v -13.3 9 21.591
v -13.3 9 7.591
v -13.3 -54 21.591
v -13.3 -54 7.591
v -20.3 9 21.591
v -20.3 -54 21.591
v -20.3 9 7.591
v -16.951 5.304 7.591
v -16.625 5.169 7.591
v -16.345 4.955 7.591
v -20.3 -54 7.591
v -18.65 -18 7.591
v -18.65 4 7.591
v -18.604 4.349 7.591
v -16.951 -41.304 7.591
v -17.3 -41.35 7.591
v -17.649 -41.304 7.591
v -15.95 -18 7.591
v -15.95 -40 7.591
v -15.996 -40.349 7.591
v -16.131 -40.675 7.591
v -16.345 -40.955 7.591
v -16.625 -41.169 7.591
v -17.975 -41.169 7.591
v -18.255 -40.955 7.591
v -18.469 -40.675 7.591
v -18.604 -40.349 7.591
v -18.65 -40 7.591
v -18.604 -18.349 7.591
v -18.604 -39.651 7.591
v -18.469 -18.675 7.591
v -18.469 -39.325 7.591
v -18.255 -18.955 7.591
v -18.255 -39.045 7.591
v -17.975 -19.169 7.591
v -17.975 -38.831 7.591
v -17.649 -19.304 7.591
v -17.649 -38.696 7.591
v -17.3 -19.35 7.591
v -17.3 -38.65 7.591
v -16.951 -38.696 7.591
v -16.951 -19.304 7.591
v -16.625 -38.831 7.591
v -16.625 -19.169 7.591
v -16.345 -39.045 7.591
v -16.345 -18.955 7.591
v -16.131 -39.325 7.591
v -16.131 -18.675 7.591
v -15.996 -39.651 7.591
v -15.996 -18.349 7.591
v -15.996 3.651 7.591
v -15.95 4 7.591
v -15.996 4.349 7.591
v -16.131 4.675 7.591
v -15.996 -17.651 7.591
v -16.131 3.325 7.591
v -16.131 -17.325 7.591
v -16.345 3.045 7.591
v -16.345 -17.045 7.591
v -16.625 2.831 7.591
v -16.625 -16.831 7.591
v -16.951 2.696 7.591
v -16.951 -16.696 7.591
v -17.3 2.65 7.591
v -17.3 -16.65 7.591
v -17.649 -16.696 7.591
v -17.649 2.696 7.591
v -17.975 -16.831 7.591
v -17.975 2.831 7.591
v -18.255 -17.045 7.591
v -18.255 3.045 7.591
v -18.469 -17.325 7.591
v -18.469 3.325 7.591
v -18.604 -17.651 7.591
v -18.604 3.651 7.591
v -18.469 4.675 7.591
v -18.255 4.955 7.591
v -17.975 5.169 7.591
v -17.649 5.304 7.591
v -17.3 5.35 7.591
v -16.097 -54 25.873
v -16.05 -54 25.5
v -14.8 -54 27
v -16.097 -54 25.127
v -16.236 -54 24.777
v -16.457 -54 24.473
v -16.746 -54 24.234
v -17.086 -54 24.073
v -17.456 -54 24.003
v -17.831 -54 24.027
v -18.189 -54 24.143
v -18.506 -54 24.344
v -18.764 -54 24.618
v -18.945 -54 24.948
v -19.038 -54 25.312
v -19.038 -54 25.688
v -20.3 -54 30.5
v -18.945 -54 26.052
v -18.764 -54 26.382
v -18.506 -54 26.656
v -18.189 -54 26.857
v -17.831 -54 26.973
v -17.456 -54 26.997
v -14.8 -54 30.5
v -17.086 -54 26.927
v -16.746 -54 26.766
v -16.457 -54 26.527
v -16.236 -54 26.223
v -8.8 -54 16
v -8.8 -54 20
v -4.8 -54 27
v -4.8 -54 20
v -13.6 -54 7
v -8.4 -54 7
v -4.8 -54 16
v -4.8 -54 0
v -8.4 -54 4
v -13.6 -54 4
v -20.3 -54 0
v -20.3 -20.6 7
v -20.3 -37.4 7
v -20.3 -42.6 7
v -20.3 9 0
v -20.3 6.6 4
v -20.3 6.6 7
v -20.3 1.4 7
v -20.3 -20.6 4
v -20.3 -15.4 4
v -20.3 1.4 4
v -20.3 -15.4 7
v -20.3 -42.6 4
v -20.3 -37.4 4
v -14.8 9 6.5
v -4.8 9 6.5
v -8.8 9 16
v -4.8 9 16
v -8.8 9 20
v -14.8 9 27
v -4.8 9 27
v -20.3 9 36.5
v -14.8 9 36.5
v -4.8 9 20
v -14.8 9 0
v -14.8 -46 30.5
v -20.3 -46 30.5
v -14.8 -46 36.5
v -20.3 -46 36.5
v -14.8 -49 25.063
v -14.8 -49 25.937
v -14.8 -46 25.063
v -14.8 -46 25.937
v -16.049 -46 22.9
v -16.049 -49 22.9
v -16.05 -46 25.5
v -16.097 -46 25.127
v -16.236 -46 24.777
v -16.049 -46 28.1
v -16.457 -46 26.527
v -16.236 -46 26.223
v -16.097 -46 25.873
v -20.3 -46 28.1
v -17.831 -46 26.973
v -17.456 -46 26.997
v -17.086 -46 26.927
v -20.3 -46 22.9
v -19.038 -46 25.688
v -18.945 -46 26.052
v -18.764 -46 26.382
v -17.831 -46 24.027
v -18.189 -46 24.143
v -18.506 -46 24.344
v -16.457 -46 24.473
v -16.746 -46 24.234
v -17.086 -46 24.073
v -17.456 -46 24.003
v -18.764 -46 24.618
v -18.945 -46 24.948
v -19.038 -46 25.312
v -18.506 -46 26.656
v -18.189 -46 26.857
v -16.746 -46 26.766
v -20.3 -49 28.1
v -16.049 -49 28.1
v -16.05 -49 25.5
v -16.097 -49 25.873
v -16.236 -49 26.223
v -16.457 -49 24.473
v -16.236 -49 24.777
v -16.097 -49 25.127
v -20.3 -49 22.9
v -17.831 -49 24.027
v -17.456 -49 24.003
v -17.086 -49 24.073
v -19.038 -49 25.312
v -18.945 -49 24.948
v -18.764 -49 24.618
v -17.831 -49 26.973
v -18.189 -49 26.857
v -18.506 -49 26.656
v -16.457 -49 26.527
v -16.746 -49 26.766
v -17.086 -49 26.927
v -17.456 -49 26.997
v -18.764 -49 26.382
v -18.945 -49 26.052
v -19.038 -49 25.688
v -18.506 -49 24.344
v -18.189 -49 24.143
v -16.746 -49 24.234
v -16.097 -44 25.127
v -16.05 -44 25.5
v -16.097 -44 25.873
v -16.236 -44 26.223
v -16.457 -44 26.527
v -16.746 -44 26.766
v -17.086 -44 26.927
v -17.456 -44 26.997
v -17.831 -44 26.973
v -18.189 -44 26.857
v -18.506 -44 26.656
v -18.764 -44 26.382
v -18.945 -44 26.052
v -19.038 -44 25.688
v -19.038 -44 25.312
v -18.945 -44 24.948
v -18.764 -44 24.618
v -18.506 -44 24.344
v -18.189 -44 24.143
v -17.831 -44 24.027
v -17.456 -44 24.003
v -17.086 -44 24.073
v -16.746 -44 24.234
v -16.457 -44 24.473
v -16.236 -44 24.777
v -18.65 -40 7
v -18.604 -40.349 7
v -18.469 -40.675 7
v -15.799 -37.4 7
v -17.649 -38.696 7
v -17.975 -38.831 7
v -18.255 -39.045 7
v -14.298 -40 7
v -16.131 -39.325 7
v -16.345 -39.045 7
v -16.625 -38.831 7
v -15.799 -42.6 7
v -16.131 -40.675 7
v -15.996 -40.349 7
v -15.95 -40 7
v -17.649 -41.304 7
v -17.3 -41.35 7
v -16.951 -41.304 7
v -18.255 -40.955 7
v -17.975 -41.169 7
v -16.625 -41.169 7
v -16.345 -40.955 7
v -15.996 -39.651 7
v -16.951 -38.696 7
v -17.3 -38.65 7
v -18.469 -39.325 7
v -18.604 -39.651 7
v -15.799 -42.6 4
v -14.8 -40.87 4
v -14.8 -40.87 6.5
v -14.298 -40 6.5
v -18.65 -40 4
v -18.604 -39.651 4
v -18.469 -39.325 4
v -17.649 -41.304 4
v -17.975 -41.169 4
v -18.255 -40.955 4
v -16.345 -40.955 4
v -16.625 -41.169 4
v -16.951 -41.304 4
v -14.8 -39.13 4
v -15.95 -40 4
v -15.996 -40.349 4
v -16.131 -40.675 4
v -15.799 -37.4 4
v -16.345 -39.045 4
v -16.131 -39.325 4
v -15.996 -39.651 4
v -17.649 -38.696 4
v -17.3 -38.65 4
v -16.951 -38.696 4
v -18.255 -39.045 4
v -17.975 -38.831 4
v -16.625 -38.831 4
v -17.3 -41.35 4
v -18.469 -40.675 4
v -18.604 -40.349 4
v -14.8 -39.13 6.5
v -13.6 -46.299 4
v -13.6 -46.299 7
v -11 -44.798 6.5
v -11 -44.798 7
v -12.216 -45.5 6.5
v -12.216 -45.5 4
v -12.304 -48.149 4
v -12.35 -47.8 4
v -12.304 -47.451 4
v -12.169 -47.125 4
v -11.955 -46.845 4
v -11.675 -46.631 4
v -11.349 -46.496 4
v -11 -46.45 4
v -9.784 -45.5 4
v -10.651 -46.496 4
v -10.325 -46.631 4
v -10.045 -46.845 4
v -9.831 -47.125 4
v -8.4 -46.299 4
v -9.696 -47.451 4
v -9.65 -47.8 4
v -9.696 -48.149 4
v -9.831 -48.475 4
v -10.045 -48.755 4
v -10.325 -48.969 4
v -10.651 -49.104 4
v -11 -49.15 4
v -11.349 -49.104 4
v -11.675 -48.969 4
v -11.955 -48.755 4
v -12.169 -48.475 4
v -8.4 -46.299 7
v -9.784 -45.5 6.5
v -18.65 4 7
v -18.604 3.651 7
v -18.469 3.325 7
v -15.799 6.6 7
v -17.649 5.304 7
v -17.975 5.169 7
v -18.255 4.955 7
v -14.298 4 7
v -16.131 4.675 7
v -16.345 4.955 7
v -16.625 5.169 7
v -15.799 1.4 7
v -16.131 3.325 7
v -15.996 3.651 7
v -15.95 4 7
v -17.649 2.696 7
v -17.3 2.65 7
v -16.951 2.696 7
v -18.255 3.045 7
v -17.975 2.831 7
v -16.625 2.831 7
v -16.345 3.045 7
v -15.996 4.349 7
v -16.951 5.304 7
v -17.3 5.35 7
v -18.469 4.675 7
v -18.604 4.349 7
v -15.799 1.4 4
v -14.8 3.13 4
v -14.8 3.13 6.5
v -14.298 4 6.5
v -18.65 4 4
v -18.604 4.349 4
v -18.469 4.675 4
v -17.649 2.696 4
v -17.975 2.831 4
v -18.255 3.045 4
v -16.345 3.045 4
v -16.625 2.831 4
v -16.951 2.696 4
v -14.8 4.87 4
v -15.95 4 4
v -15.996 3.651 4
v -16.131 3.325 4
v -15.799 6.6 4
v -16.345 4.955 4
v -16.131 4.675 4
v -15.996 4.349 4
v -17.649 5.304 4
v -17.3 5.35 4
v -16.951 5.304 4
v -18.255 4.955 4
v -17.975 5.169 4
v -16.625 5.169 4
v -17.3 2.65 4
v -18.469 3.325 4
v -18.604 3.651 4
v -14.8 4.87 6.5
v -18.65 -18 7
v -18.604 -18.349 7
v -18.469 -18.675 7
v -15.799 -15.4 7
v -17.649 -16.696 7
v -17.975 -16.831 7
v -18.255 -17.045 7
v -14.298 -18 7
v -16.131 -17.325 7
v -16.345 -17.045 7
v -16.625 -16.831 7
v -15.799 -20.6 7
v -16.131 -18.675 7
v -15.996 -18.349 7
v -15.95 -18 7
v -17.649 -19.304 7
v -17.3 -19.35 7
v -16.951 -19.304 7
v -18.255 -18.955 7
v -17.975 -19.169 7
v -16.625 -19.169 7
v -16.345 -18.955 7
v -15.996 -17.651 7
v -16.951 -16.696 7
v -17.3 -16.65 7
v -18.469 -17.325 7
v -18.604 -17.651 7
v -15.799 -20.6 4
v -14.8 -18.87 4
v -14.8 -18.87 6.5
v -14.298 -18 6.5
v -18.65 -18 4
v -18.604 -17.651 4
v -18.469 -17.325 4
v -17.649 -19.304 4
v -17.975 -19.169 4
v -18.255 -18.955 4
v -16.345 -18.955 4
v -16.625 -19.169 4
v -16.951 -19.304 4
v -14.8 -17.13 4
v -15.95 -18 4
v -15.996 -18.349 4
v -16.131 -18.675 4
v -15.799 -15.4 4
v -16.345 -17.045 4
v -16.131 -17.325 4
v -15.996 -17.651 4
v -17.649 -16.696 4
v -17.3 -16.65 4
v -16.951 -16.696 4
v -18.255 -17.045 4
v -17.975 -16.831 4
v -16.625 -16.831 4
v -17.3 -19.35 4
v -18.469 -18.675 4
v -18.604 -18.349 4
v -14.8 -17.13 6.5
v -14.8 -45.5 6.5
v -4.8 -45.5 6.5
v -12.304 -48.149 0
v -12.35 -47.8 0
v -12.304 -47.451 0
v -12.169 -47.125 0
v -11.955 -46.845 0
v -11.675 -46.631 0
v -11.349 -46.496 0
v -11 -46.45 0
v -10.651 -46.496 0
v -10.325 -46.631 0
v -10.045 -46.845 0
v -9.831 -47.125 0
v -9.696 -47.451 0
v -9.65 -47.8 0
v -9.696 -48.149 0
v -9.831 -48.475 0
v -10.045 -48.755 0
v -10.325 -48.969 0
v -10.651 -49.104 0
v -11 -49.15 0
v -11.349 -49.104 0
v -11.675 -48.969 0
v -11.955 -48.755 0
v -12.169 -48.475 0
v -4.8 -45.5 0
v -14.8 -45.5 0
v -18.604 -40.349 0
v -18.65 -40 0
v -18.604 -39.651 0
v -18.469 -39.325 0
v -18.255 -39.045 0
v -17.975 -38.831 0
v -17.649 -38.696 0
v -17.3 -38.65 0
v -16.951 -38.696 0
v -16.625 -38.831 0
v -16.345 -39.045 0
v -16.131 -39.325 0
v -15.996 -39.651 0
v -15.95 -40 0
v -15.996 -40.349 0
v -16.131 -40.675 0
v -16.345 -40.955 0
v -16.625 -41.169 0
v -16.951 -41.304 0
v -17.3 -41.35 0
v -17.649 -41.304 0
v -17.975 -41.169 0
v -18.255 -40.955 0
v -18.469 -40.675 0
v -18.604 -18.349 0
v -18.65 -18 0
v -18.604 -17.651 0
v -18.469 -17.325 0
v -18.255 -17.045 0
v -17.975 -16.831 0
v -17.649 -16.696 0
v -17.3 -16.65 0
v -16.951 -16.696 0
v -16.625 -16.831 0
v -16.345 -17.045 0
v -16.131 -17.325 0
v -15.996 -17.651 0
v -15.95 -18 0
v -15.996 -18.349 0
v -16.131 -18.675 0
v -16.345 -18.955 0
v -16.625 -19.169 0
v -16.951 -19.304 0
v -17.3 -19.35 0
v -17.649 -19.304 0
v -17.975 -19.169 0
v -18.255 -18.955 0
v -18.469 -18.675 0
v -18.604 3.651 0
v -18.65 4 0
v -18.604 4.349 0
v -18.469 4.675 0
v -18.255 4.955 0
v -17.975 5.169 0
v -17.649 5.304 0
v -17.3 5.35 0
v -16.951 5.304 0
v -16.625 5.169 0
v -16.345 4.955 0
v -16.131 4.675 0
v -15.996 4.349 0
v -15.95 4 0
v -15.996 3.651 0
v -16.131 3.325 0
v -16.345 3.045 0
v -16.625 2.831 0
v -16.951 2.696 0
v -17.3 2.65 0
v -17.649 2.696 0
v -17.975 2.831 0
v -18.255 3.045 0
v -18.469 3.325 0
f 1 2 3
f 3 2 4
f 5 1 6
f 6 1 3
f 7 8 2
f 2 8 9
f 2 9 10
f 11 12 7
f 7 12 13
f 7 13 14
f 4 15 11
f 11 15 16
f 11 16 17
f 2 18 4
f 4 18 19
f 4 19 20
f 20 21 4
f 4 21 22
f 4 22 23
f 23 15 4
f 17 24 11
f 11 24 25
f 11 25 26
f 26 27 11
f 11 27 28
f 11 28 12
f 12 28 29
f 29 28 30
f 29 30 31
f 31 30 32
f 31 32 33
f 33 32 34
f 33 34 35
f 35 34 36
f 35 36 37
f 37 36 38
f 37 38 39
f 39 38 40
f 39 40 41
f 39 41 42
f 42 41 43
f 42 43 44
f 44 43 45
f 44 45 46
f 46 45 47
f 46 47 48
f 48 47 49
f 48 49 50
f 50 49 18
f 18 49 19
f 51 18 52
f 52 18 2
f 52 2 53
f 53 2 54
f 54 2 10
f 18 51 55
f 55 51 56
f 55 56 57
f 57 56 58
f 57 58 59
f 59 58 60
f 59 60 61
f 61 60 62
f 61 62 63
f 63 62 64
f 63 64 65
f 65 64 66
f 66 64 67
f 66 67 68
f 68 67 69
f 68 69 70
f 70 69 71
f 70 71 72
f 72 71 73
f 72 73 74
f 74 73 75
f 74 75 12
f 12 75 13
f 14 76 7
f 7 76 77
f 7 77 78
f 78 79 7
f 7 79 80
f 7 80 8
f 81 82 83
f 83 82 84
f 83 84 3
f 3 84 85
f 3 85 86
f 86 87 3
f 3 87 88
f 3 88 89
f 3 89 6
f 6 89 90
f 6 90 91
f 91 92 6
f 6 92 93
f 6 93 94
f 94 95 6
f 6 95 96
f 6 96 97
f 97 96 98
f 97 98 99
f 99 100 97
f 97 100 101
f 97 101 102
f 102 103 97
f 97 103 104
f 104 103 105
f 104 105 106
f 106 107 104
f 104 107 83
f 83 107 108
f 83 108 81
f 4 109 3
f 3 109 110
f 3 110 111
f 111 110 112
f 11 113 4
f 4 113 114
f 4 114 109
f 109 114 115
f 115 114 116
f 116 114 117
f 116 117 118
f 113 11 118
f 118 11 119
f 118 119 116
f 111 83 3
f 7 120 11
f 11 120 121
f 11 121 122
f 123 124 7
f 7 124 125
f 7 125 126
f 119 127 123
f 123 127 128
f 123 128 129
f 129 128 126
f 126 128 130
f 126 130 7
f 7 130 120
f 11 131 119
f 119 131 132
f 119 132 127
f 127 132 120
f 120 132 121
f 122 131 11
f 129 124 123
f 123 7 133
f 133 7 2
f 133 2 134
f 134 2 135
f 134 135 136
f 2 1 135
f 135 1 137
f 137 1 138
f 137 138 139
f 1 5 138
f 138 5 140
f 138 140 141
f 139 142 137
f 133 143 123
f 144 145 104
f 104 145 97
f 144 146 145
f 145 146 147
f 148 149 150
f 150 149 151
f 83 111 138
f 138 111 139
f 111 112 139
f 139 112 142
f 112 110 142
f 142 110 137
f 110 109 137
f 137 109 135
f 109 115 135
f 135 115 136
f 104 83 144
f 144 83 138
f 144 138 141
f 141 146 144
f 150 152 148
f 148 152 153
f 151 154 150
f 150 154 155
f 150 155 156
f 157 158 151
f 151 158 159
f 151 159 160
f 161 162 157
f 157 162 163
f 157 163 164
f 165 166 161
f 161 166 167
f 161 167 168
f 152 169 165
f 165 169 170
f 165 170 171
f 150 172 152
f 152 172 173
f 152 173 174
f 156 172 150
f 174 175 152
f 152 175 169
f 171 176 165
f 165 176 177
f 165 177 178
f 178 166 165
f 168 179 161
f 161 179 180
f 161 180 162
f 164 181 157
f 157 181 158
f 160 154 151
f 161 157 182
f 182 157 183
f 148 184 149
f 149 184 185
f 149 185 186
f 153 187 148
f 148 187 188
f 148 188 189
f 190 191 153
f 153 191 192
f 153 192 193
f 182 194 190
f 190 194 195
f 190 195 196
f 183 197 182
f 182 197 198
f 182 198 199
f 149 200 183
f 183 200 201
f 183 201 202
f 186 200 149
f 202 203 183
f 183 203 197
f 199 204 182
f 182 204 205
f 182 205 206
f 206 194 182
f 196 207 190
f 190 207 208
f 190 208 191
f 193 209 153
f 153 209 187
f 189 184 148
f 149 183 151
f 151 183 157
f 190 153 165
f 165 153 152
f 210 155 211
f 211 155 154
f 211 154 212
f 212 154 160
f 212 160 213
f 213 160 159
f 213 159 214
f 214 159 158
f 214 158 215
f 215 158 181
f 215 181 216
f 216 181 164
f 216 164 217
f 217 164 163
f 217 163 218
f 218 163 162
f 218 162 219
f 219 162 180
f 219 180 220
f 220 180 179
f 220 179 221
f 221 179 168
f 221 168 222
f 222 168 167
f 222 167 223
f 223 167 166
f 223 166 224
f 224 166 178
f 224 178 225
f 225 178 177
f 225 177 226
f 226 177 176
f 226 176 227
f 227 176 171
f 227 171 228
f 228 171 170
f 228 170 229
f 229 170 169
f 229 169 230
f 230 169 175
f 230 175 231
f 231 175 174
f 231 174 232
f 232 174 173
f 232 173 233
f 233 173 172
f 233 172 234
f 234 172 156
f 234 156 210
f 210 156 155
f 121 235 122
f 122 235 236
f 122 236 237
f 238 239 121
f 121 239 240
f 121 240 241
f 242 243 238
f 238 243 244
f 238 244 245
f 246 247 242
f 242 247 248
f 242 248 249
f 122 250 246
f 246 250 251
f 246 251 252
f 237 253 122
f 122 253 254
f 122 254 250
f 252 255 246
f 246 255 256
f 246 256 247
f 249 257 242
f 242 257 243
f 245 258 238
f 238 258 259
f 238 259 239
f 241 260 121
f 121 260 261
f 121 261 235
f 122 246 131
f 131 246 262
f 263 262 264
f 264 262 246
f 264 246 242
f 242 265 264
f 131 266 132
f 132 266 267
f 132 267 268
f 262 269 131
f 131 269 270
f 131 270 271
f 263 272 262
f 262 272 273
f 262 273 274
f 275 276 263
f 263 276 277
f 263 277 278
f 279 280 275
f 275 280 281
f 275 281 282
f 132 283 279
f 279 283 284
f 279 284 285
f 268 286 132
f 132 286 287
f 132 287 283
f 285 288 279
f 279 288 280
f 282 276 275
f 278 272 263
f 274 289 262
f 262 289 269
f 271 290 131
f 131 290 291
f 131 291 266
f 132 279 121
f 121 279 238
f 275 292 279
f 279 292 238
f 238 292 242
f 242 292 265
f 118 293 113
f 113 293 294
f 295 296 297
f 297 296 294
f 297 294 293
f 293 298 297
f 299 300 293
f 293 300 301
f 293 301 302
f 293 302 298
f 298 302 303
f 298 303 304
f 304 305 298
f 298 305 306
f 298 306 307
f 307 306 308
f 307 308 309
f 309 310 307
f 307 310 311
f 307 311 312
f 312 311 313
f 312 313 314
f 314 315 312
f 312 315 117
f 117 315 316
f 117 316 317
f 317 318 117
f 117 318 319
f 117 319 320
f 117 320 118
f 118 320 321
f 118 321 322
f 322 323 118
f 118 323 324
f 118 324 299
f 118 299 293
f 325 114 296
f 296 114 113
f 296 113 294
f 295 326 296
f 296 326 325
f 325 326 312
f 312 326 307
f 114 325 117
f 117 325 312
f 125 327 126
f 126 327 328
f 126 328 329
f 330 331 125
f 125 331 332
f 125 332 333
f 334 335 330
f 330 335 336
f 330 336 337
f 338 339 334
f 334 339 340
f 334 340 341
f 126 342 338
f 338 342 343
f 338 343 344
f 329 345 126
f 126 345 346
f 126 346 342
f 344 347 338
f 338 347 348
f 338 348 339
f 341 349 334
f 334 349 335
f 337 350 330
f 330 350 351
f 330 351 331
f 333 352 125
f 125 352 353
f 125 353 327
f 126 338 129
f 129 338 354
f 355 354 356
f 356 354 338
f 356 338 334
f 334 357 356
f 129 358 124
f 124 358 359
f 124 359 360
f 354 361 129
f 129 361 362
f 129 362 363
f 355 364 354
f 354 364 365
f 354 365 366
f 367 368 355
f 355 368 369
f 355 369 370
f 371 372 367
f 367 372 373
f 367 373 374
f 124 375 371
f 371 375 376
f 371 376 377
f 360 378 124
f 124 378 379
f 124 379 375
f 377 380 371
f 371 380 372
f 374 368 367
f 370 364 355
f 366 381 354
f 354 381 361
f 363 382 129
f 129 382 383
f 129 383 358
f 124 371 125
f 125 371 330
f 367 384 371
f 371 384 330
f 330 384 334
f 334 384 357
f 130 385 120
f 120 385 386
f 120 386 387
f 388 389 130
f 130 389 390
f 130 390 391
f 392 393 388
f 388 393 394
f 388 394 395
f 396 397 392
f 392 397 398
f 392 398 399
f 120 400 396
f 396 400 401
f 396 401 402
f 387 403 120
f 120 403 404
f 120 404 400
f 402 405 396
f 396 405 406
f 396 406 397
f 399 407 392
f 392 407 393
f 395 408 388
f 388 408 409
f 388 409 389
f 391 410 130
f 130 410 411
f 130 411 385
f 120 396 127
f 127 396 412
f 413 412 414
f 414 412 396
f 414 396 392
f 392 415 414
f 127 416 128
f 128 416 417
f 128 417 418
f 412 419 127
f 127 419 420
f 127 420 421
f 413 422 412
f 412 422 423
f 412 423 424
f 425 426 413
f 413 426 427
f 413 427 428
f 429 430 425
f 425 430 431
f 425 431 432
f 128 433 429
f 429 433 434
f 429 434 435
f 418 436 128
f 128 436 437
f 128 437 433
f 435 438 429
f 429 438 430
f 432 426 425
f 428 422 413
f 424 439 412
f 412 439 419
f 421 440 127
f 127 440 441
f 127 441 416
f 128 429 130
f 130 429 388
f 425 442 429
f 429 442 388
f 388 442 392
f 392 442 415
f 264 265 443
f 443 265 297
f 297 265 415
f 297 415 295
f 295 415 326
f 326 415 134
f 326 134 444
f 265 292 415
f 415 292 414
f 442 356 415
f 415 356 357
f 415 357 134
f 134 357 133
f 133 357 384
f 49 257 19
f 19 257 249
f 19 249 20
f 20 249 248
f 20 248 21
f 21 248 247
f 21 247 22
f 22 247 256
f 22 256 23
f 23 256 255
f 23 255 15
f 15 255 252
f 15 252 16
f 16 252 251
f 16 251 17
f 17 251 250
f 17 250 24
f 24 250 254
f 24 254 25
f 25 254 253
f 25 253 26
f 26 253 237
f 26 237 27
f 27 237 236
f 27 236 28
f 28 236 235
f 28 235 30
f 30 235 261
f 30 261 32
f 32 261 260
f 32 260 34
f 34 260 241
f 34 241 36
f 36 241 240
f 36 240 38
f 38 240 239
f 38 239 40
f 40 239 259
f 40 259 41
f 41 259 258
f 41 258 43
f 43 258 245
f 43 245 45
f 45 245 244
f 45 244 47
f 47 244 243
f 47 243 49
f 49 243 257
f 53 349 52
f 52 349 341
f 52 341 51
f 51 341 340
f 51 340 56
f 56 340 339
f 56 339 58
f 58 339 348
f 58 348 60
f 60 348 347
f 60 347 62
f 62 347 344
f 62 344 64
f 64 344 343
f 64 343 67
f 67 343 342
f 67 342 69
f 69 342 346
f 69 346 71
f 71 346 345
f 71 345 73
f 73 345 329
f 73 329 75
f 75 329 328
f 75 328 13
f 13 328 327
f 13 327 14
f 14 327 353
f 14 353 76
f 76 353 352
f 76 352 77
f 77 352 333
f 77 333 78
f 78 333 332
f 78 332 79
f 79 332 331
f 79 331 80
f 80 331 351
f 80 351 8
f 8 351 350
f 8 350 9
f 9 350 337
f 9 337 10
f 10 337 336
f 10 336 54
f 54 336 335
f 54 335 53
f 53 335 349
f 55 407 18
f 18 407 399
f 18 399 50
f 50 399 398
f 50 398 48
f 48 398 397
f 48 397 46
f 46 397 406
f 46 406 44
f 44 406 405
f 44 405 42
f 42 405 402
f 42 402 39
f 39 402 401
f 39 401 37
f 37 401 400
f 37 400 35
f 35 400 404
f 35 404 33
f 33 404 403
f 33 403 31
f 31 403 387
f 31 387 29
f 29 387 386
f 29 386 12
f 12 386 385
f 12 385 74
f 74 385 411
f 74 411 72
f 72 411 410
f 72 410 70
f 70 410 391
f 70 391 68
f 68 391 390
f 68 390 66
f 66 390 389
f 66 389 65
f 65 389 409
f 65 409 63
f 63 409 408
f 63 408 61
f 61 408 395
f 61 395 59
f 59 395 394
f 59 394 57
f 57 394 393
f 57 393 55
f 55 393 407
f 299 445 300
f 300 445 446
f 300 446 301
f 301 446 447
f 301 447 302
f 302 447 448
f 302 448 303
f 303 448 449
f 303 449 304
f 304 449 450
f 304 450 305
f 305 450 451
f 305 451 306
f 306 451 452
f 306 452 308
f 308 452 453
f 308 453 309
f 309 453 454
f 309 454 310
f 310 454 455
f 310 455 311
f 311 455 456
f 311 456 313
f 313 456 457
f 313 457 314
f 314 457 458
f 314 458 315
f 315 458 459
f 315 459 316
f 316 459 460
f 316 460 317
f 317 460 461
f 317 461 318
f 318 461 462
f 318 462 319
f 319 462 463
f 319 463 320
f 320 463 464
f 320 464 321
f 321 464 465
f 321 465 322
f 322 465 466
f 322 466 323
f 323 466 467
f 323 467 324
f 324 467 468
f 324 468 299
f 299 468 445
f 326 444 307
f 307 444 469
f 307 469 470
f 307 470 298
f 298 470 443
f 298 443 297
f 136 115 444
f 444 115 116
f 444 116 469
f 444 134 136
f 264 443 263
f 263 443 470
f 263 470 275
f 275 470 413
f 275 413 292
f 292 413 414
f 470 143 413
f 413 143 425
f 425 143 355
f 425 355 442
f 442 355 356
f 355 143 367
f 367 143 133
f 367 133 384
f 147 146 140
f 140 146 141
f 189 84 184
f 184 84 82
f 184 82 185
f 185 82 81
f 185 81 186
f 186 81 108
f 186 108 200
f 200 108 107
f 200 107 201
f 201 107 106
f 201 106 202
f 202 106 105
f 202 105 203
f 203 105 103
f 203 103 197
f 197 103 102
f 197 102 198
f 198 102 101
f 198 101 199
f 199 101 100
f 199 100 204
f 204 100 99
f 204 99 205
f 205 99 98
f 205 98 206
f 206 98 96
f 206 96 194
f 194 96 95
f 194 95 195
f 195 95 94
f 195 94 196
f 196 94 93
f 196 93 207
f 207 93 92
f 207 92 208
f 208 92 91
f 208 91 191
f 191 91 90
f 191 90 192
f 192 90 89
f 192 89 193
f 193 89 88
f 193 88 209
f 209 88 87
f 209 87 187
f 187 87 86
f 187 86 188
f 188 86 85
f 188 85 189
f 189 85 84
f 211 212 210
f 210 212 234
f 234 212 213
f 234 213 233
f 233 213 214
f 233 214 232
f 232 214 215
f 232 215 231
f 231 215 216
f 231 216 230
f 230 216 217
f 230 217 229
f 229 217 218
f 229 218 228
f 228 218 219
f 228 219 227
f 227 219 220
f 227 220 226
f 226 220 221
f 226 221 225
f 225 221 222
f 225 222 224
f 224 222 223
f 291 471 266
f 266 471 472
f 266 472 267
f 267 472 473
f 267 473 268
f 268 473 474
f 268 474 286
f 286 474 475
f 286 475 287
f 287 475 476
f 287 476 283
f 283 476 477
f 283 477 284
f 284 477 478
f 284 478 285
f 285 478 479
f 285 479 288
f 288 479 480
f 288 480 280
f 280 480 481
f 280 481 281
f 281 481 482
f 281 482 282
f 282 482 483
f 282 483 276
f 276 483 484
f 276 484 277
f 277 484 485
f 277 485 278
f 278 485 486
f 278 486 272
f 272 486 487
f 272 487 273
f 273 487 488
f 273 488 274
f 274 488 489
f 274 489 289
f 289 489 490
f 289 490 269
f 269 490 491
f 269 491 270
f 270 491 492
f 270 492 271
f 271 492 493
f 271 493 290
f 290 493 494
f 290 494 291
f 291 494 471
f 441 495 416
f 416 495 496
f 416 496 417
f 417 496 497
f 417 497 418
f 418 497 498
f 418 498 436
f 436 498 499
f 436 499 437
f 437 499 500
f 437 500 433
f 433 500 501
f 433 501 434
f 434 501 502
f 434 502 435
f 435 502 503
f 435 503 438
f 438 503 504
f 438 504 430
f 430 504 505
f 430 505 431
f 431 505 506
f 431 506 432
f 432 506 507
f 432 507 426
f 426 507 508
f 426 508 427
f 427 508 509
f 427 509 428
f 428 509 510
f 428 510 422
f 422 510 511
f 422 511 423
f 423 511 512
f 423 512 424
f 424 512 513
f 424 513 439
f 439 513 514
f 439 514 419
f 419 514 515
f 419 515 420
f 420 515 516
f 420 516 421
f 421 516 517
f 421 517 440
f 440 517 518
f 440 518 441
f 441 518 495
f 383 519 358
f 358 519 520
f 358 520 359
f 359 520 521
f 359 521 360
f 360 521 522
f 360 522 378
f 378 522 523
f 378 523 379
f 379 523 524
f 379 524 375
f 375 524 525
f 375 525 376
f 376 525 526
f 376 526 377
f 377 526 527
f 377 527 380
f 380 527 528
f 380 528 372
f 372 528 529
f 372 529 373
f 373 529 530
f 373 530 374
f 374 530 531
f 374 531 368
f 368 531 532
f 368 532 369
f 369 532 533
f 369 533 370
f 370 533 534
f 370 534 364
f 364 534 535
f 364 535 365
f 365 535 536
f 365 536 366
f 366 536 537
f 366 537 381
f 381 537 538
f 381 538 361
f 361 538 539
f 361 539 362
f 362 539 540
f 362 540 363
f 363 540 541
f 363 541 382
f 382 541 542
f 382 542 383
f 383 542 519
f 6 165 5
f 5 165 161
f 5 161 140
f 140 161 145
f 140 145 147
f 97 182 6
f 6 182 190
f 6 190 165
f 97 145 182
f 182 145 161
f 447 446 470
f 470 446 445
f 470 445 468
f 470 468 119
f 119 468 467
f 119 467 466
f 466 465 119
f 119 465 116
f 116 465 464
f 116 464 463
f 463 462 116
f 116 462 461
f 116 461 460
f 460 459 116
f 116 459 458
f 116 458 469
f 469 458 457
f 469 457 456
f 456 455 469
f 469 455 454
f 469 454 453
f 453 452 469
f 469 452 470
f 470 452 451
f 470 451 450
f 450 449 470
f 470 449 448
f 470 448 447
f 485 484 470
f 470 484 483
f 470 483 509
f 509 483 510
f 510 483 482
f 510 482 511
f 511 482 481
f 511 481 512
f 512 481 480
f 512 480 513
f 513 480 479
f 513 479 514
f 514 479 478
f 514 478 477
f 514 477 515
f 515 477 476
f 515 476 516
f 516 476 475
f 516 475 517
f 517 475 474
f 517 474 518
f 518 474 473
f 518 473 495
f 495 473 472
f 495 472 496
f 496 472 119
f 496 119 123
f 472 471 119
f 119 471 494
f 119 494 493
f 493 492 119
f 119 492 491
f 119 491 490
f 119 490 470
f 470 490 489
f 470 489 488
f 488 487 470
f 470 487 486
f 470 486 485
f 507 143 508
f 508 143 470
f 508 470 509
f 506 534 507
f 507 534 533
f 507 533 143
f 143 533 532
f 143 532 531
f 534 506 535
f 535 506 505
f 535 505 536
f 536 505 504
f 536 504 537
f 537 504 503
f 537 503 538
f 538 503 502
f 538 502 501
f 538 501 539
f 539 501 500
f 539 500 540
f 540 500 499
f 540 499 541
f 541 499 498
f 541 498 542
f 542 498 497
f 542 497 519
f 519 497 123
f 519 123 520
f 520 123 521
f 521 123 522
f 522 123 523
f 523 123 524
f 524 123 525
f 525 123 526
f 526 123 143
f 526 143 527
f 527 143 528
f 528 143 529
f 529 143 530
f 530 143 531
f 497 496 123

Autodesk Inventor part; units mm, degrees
ref_plane "Work Plane1" through (0, 0, 0) normal (0, 0, 1) x (1, 0, 0)
sketch "Sketch1" plane through (0, 0, 0) normal (0, 0, 1) x (1, 0, 0)
  circle A0 centre (-17.3, 4) radius 1.35 projected
  circle A1 centre (-17.3, -18) radius 1.35 projected
  circle A2 centre (-17.3, -40) radius 1.35 projected
  line L0 (-17.3, 4) -> (-14.8, 4)
  line L1 (-14.8, 4) -> (-14.8, 9)
  line L2 (-14.8, 9) -> (-20.3, 9)
  line L3 (-17.3, -40) -> (-17.3, -54)
  line L4 (-14.8, 4) -> (-14.8, -54)
  line L5 (-14.8, -54) -> (-17.3, -54)
  line L6 (-17.3, -54) -> (-20.3, -54)
  line L7 (-20.3, -54) -> (-20.3, 9)
  point P0 (0, 0)
  dimension "d0" = 2.5
  dimension "d1" = 5
  dimension "d2" = 5.5
  dimension "d3" = 14
extrude "Extrusion1" add sketch "Sketch1" along normal blind 36.5
sketch "Sketch2" plane through (-20.3, -54, 0) normal (0, -1, 0) x (1, 0, 0)
  line L0 (0, 0) -> (5.5, 0) projected
  line L1 (5.5, 0) -> (5.5, 36.5) projected
  line L2 (0, 36.5) -> (5.5, 36.5) projected
  line L3 (0, 0) -> (0, 36.5) projected
  line L4 (2.75, 36.5) -> (2.75, 25.5)
  circle A0 centre (2.75, 25.5) radius 1.5
  point P0 (20.3, 0)
  dimension "d6" = 11
  dimension "d7" = 3
extrude "Extrusion2" cut sketch "Sketch2" against normal blind 10 contours A0
sketch "Sketch3" plane through (-20.3, -54, 0) normal (-1, 0, 0) x (0, 0, 1)
  line L0 (0, 63) -> (0, 0) projected
  line L1 (0, 0) -> (36.5, 0) projected
  line L2 (36.5, 63) -> (36.5, 0) projected
  line L3 (0, 63) -> (36.5, 63) projected
  line L4 (0, 0) -> (36.5, 0) projected
  line L5 (36.5, 0) -> (28.5, 0)
  line L6 (28.5, 0) -> (28.5, 8)
  line L7 (28.5, 8) -> (36.5, 8)
  line L8 (36.5, 8) -> (36.5, 0)
  point P0 (0, 54)
  dimension "d10" = 8
  dimension "d11" = 8
extrude "Extrusion3" cut sketch "Sketch3" against normal blind 10 contours L6 L7 L2 L1
sketch "Sketch4" plane through (-20.3, 9, 0) normal (0, 1, 0) x (1, 0, 0)
  line L0 (5.5, 0) -> (0, 0) projected
  line L1 (0, 0) -> (0, -36.5) projected
  line L2 (5.5, -36.5) -> (0, -36.5) projected
  line L3 (5.5, 0) -> (5.5, -36.5) projected
  line L4 (6.8, -6) -> (8.8, -6) projected
  line L5 (6.8, -6) -> (5.5, -6)
  line L6 (5.5, -6) -> (5.5, -6.5)
  line L7 (5.5, 0) -> (5.5, -28.5) projected
  line L8 (5.5, -6.5) -> (15.5, -6.5)
  line L9 (15.5, -6.5) -> (15.5, -11.5)
  line L10 (15.5, -11.5) -> (5.5, -11.5)
  line L11 (5.5, -11.5) -> (5.5, -6.5)
  point P0 (20.3, 0)
  dimension "d14" = 0.5
  dimension "d15" = 10
  dimension "d16" = 5
extrude "Extrusion4" add sketch "Sketch4" against normal up to surface (63 mm away) contours L8 L9 L10 L3
sketch "Sketch5" plane through (-4.8, 9, 6.5) normal (0, 0, -1) x (-1, 0, 0)
  circle A0 centre (12.5, -49) radius 1.35 projected
  circle A1 centre (12.5, -27) radius 1.35 projected
  circle A2 centre (12.5, -5) radius 1.35 projected
  line L0 (10, -63) -> (10, 0) projected
  line L1 (15.5, -63) -> (10, -63) projected
  line L2 (15.5, 0) -> (15.5, -63) projected
  line L3 (10, 0) -> (15.5, 0) projected
  line L4 (0, -63) -> (10, -63) projected
  line L5 (10, 0) -> (10, -63) projected
  line L6 (0, 0) -> (10, 0) projected
  line L7 (0, 0) -> (0, -63) projected
  line L8 (-19.8, 5.5) -> (-16.3, 5.5) projected
  line L9 (-19.8, 5.5) -> (-24.9, -0.5) projected
  line L10 (-24.9, -0.5) -> (-24.9, -53.6) projected
  line L11 (-24.9, -53.6) -> (-19.8, -59.6) projected
  line L12 (-19.8, -59.6) -> (10.2, -59.6) projected
  line L13 (10.2, -59.6) -> (15.3, -53.6) projected
  line L14 (15.3, -53.6) -> (15.3, -0.5) projected
  line L15 (15.3, -0.5) -> (10.2, 5.5) projected
  line L16 (6.7, 5.5) -> (10.2, 5.5) projected
  arc A3 (9.7, 2.5) -> (6.7, 5.5) centre (6.7, 2.5) ccw projected
  line L17 (9.7, -51) -> (9.7, 2.5) projected
  arc A4 (6.7, -54) -> (9.7, -51) centre (6.7, -51) ccw projected
  line L18 (-16.3, -54) -> (6.7, -54) projected
  arc A5 (-19.3, -51) -> (-16.3, -54) centre (-16.3, -51) ccw projected
  line L19 (-19.3, 2.5) -> (-19.3, -51) projected
  arc A6 (-16.3, 5.5) -> (-19.3, 2.5) centre (-16.3, 2.5) ccw projected
  circle A7 centre (12.5, -5) radius 1.35 projected
  circle A8 centre (12.5, -27) radius 1.35 projected
  circle A9 centre (12.5, -49) radius 1.35 projected
  circle A10 centre (6.2, -56.8) radius 1.35 projected
  circle A11 centre (-22.1, -5) radius 1.35 projected
  circle A12 centre (-22.1, -27) radius 1.35 projected
  circle A13 centre (-22.1, -49) radius 1.35 projected
  circle A14 centre (-15.8, -56.8) radius 1.35 projected
  line L20 (10, 0) -> (10, -63) projected
  line L21 (10, -63) -> (0, -63)
  line L22 (0, -63) -> (0, -54.5)
  line L23 (0, -54.5) -> (10, -54.5)
  line L24 (10, -54.5) -> (10, -63)
  point P0 (-4.8, -9)
  dimension "d19" = 10
  dimension "d20" = 8.5
extrude "Extrusion5" add sketch "Sketch5" along normal up to surface (6.5 mm away) contours L0 L12 L7 L23 | L0 L4 L7 L12
ref_plane "Work Plane2" through (0, 0, 4) normal (0, 0, -1) x (-1, 0, 0)
sketch "Sketch6" plane through (0, 0, 4) normal (0, 0, -1) x (-1, 0, 0)
  circle A0 centre (17.3, 4) radius 1.35 projected
  circle A1 centre (17.3, -18) radius 1.35 projected
  circle A2 centre (11, -47.8) radius 1.35 projected
  circle A3 centre (17.3, -40) radius 1.35 projected
  circle A4 centre (17.3, -18) radius 1.35 projected
  circle A5 centre (17.3, 4) radius 1.35 projected
  line L0 (20.3, -54) -> (4.8, -54) projected
  line L1 (20.3, 9) -> (20.3, -54) projected
  line L2 (14.8, 9) -> (20.3, 9) projected
  line L3 (14.8, -45.5) -> (14.8, 9) projected
  line L4 (14.8, -45.5) -> (4.8, -45.5) projected
  line L5 (4.8, -45.5) -> (4.8, -54) projected
  circle A6 centre (11, -47.8) radius 1.35 projected
  circle A7 centre (11, -47.8) radius 1.35 projected
  line L6 (17.3, 4) -> (17.3, 6.6)
  line L7 (18.8011, 6.6) -> (20.3022, 4)
  line L8 (20.3022, 4) -> (18.8011, 1.4)
  line L9 (18.8011, 1.4) -> (15.7989, 1.4)
  line L10 (15.7989, 1.4) -> (14.2978, 4)
  line L11 (14.2978, 4) -> (15.7989, 6.6)
  line L12 (15.7989, 6.6) -> (18.8011, 6.6)
  line L13 (18.8011, 1.4) -> (28.5961, 1.4)
  line L14 (28.5961, 1.4) -> (28.5961, 6.6)
  line L15 (28.5961, 6.6) -> (18.8011, 6.6)
  line L16 (18.8011, 6.6) -> (18.8011, 1.4)
  line L17 (11, -47.8) -> (13.6, -47.8)
  line L18 (13.6, -49.3011) -> (11, -50.8022)
  line L19 (11, -50.8022) -> (8.4, -49.3011)
  line L20 (8.4, -49.3011) -> (8.4, -46.2989)
  line L21 (8.4, -46.2989) -> (11, -44.7978)
  line L22 (11, -44.7978) -> (13.6, -46.2989)
  line L23 (13.6, -46.2989) -> (13.6, -49.3011)
  line L24 (13.6, -49.3011) -> (8.4, -49.3011)
  line L25 (8.4, -49.3011) -> (8.4, -56.2377)
  line L26 (8.4, -56.2377) -> (13.6, -56.2377)
  line L27 (13.6, -56.2377) -> (13.6, -49.3011)
  line L28 (18.8011, -15.4) -> (20.3022, -18)
  line L29 (20.3022, -18) -> (18.8011, -20.6)
  line L30 (18.8011, -20.6) -> (28.5961, -20.6)
  line L31 (28.5961, -20.6) -> (28.5961, -15.4)
  line L32 (28.5961, -15.4) -> (18.8011, -15.4)
  line L33 (18.8011, -15.4) -> (18.8011, -20.6)
  line L34 (17.3, -18) -> (17.3, -15.4)
  line L35 (18.8011, -20.6) -> (15.7989, -20.6)
  line L36 (15.7989, -15.4) -> (18.8011, -15.4)
  line L37 (15.7989, -20.6) -> (14.2978, -18)
  line L38 (14.2978, -18) -> (15.7989, -15.4)
  line L39 (18.8011, -37.4) -> (20.3022, -40)
  line L40 (20.3022, -40) -> (18.8011, -42.6)
  line L41 (18.8011, -42.6) -> (28.5961, -42.6)
  line L42 (28.5961, -42.6) -> (28.5961, -37.4)
  line L43 (28.5961, -37.4) -> (18.8011, -37.4)
  line L44 (18.8011, -37.4) -> (18.8011, -42.6)
  line L45 (17.3, -40) -> (17.3, -37.4)
  line L46 (18.8011, -42.6) -> (15.7989, -42.6)
  line L47 (15.7989, -37.4) -> (18.8011, -37.4)
  line L48 (15.7989, -42.6) -> (14.2978, -40)
  line L49 (14.2978, -40) -> (15.7989, -37.4)
  point P0 (0, 0)
  dimension "d24" = 2.6
  dimension "d25" = 2.6
  dimension "d28" = 22
extrude "Extrusion6" cut sketch "Sketch6" against normal blind 3 contours L12 L16 L9 L10 L3 L11 | L15 L1 L7 | L7 L8 L16 | L3 L10 L11 | L1 L15 L14 L13 | L1 L13 L8 | L38 L36 L33 L35 L37 L3 | L3 L37 L38 | L32 L31 L30 L1 | L1 L28 L32 | L29 L33 L28 | L1 L30 L29 | L49 L47 L44 L46 L48 L3 | L3 L48 L49 | L43 L42 L41 L1 | L1 L39 L43 | L40 L44 L39 | L1 L41 L40 | A2 | L22 L23 L24 L20 L21 L4 | L4 L21 L22 | L27 L26 L25 L0 | L0 L25 L19 L18 L27 | L24 L18 L19
sketch "Sketch7" plane through (0, 0, 36.5) normal (0, 0, 1) x (1, 0, 0)
  line L0 (-20.3, -46) -> (-14.8, -46) projected
  line L1 (-14.8, -46) -> (-14.8, 9) projected
  line L2 (-14.8, 9) -> (-20.3, 9) projected
  line L3 (-20.3, 9) -> (-20.3, -46) projected
  circle A0 centre (-17.3, 4) radius 1.35 projected
  circle A1 centre (-17.3, -18) radius 1.35 projected
  circle A2 centre (-17.3, -40) radius 1.35 projected
  point P0 (0, 0)
extrude "Extrusion7" add sketch "Sketch7" against normal blind 25 contours A0 | A1 | A2
ref_plane "Work Plane3" through (-20.3, -49, 28.5) normal (0, -1, 0) x (1, 0, 0)
sketch "Sketch8" plane through (-20.3, -49, 28.5) normal (0, -1, 0) x (1, 0, 0)
  circle A0 centre (2.75, -3) radius 1.5 projected
  line L0 (2.75, -3) -> (2.75, -0.4)
  line L1 (4.2511, -0.4) -> (5.7522, -3)
  line L2 (5.7522, -3) -> (4.2511, -5.6)
  line L3 (4.2511, -5.6) -> (1.2489, -5.6)
  line L4 (1.2489, -5.6) -> (-0.2522, -3)
  line L5 (-0.2522, -3) -> (1.2489, -0.4)
  line L6 (1.2489, -0.4) -> (4.2511, -0.4)
  line L7 (1.2489, -0.4) -> (-2.7612, -0.4)
  line L8 (-2.7612, -0.4) -> (-2.7612, -5.6)
  line L9 (-2.7612, -5.6) -> (1.2489, -5.6)
  line L10 (1.2489, -5.6) -> (1.2489, -0.4)
  point P0 (20.3, -28.5)
  dimension "d38" = 2.6
extrude "Extrusion8" cut sketch "Sketch8" against normal blind 3 contours A0 L0 L6 L1 L2 L3 L10 | A0 L10 L6 L0 | L10 L4 L5 | L9 L8 L7 L5 L4
sketch "Sketch9" plane through (-20.3, 9, 0) normal (0, 1, 0) x (1, 0, 0)
  line L0 (5.5, 0) -> (0, 0) projected
  line L1 (0, 0) -> (0, -36.5) projected
  line L2 (5.5, -36.5) -> (0, -36.5) projected
  line L3 (5.5, -11.5) -> (5.5, -36.5) projected
  line L4 (5.5, -11.5) -> (15.5, -11.5) projected
  line L5 (15.5, -11.5) -> (15.5, -6.5) projected
  line L6 (15.5, -6.5) -> (5.5, -6.5) projected
  line L7 (5.5, 0) -> (5.5, -6.5) projected
  line L8 (5.5, -11.5) -> (15.5, -11.5) projected
  line L9 (5.5, -11.5) -> (5.5, -28.5) projected
  line L10 (15.5, -11.5) -> (5.5, -11.5)
  line L11 (5.5, -20) -> (15.5, -20)
  line L12 (5.5, -20) -> (11.5, -20)
  line L13 (5.5, -24) -> (5.5, -20)
  line L14 (15.5, -24) -> (15.5, -27)
  line L15 (15.5, -27) -> (5.5, -27)
  line L16 (5.5, -27) -> (5.5, -24)
  line L17 (5.5, -11.5) -> (15.5, -11.5)
  line L18 (15.5, -11.5) -> (15.5, -16)
  line L19 (15.5, -16) -> (5.5, -16)
  line L20 (5.5, -16) -> (5.5, -11.5)
  line L21 (5.5, -16) -> (11.5, -16)
  line L22 (11.5, -16) -> (11.5, -20)
  line L23 (11.5, -20) -> (5.5, -20)
  line L24 (5.5, -20) -> (5.5, -16)
  line L25 (5.5, -20) -> (15.5, -20)
  line L26 (15.5, -20) -> (15.5, -27)
  line L27 (15.5, -27) -> (5.5, -27)
  line L28 (5.5, -27) -> (5.5, -20)
  point P0 (20.3, 0)
  dimension "d41" = 8.5
  dimension "d44" = 10
  dimension "d45" = 3
  dimension "d48" = 4.5
extrude "Extrusion9" add sketch "Sketch9" against normal up to surface (63 mm away) contours L18 L19 L3 L4 | L3 L11 L26 L14 L15 | L19 L22 L11 L3
sketch "Sketch11" plane through (-20.3, -54, 28.5) normal (0, 0, 1) x (1, 0, 0)
  line L0 (5.5, 8) -> (5.5, 0) projected
  line L1 (0, 8) -> (5.5, 8) projected
  line L2 (0, 0) -> (0, 8) projected
  line L3 (5.5, 0) -> (0, 0) projected
  point P0 (20.3, 54)
extrude "Extrusion10" add sketch "Sketch11" along normal blind 2
sketch "Sketch12" plane through (-20.3, -54, 0) normal (0, -1, 0) x (1, 0, 0)
  line L0 (0, 0) -> (0, 30.5) projected
  line L1 (0, 21.5909) -> (7, 21.5909)
  line L2 (7, 21.5909) -> (7, 7.5909)
  line L3 (7, 7.5909) -> (0, 7.5909)
  line L4 (0, 7.5909) -> (0, 21.5909)
  point P0 (20.3, 0)
  dimension "d51" = 7
  dimension "d52" = 14
extrude "Extrusion11" cut sketch "Sketch12" against normal through all
properties part number "side"
